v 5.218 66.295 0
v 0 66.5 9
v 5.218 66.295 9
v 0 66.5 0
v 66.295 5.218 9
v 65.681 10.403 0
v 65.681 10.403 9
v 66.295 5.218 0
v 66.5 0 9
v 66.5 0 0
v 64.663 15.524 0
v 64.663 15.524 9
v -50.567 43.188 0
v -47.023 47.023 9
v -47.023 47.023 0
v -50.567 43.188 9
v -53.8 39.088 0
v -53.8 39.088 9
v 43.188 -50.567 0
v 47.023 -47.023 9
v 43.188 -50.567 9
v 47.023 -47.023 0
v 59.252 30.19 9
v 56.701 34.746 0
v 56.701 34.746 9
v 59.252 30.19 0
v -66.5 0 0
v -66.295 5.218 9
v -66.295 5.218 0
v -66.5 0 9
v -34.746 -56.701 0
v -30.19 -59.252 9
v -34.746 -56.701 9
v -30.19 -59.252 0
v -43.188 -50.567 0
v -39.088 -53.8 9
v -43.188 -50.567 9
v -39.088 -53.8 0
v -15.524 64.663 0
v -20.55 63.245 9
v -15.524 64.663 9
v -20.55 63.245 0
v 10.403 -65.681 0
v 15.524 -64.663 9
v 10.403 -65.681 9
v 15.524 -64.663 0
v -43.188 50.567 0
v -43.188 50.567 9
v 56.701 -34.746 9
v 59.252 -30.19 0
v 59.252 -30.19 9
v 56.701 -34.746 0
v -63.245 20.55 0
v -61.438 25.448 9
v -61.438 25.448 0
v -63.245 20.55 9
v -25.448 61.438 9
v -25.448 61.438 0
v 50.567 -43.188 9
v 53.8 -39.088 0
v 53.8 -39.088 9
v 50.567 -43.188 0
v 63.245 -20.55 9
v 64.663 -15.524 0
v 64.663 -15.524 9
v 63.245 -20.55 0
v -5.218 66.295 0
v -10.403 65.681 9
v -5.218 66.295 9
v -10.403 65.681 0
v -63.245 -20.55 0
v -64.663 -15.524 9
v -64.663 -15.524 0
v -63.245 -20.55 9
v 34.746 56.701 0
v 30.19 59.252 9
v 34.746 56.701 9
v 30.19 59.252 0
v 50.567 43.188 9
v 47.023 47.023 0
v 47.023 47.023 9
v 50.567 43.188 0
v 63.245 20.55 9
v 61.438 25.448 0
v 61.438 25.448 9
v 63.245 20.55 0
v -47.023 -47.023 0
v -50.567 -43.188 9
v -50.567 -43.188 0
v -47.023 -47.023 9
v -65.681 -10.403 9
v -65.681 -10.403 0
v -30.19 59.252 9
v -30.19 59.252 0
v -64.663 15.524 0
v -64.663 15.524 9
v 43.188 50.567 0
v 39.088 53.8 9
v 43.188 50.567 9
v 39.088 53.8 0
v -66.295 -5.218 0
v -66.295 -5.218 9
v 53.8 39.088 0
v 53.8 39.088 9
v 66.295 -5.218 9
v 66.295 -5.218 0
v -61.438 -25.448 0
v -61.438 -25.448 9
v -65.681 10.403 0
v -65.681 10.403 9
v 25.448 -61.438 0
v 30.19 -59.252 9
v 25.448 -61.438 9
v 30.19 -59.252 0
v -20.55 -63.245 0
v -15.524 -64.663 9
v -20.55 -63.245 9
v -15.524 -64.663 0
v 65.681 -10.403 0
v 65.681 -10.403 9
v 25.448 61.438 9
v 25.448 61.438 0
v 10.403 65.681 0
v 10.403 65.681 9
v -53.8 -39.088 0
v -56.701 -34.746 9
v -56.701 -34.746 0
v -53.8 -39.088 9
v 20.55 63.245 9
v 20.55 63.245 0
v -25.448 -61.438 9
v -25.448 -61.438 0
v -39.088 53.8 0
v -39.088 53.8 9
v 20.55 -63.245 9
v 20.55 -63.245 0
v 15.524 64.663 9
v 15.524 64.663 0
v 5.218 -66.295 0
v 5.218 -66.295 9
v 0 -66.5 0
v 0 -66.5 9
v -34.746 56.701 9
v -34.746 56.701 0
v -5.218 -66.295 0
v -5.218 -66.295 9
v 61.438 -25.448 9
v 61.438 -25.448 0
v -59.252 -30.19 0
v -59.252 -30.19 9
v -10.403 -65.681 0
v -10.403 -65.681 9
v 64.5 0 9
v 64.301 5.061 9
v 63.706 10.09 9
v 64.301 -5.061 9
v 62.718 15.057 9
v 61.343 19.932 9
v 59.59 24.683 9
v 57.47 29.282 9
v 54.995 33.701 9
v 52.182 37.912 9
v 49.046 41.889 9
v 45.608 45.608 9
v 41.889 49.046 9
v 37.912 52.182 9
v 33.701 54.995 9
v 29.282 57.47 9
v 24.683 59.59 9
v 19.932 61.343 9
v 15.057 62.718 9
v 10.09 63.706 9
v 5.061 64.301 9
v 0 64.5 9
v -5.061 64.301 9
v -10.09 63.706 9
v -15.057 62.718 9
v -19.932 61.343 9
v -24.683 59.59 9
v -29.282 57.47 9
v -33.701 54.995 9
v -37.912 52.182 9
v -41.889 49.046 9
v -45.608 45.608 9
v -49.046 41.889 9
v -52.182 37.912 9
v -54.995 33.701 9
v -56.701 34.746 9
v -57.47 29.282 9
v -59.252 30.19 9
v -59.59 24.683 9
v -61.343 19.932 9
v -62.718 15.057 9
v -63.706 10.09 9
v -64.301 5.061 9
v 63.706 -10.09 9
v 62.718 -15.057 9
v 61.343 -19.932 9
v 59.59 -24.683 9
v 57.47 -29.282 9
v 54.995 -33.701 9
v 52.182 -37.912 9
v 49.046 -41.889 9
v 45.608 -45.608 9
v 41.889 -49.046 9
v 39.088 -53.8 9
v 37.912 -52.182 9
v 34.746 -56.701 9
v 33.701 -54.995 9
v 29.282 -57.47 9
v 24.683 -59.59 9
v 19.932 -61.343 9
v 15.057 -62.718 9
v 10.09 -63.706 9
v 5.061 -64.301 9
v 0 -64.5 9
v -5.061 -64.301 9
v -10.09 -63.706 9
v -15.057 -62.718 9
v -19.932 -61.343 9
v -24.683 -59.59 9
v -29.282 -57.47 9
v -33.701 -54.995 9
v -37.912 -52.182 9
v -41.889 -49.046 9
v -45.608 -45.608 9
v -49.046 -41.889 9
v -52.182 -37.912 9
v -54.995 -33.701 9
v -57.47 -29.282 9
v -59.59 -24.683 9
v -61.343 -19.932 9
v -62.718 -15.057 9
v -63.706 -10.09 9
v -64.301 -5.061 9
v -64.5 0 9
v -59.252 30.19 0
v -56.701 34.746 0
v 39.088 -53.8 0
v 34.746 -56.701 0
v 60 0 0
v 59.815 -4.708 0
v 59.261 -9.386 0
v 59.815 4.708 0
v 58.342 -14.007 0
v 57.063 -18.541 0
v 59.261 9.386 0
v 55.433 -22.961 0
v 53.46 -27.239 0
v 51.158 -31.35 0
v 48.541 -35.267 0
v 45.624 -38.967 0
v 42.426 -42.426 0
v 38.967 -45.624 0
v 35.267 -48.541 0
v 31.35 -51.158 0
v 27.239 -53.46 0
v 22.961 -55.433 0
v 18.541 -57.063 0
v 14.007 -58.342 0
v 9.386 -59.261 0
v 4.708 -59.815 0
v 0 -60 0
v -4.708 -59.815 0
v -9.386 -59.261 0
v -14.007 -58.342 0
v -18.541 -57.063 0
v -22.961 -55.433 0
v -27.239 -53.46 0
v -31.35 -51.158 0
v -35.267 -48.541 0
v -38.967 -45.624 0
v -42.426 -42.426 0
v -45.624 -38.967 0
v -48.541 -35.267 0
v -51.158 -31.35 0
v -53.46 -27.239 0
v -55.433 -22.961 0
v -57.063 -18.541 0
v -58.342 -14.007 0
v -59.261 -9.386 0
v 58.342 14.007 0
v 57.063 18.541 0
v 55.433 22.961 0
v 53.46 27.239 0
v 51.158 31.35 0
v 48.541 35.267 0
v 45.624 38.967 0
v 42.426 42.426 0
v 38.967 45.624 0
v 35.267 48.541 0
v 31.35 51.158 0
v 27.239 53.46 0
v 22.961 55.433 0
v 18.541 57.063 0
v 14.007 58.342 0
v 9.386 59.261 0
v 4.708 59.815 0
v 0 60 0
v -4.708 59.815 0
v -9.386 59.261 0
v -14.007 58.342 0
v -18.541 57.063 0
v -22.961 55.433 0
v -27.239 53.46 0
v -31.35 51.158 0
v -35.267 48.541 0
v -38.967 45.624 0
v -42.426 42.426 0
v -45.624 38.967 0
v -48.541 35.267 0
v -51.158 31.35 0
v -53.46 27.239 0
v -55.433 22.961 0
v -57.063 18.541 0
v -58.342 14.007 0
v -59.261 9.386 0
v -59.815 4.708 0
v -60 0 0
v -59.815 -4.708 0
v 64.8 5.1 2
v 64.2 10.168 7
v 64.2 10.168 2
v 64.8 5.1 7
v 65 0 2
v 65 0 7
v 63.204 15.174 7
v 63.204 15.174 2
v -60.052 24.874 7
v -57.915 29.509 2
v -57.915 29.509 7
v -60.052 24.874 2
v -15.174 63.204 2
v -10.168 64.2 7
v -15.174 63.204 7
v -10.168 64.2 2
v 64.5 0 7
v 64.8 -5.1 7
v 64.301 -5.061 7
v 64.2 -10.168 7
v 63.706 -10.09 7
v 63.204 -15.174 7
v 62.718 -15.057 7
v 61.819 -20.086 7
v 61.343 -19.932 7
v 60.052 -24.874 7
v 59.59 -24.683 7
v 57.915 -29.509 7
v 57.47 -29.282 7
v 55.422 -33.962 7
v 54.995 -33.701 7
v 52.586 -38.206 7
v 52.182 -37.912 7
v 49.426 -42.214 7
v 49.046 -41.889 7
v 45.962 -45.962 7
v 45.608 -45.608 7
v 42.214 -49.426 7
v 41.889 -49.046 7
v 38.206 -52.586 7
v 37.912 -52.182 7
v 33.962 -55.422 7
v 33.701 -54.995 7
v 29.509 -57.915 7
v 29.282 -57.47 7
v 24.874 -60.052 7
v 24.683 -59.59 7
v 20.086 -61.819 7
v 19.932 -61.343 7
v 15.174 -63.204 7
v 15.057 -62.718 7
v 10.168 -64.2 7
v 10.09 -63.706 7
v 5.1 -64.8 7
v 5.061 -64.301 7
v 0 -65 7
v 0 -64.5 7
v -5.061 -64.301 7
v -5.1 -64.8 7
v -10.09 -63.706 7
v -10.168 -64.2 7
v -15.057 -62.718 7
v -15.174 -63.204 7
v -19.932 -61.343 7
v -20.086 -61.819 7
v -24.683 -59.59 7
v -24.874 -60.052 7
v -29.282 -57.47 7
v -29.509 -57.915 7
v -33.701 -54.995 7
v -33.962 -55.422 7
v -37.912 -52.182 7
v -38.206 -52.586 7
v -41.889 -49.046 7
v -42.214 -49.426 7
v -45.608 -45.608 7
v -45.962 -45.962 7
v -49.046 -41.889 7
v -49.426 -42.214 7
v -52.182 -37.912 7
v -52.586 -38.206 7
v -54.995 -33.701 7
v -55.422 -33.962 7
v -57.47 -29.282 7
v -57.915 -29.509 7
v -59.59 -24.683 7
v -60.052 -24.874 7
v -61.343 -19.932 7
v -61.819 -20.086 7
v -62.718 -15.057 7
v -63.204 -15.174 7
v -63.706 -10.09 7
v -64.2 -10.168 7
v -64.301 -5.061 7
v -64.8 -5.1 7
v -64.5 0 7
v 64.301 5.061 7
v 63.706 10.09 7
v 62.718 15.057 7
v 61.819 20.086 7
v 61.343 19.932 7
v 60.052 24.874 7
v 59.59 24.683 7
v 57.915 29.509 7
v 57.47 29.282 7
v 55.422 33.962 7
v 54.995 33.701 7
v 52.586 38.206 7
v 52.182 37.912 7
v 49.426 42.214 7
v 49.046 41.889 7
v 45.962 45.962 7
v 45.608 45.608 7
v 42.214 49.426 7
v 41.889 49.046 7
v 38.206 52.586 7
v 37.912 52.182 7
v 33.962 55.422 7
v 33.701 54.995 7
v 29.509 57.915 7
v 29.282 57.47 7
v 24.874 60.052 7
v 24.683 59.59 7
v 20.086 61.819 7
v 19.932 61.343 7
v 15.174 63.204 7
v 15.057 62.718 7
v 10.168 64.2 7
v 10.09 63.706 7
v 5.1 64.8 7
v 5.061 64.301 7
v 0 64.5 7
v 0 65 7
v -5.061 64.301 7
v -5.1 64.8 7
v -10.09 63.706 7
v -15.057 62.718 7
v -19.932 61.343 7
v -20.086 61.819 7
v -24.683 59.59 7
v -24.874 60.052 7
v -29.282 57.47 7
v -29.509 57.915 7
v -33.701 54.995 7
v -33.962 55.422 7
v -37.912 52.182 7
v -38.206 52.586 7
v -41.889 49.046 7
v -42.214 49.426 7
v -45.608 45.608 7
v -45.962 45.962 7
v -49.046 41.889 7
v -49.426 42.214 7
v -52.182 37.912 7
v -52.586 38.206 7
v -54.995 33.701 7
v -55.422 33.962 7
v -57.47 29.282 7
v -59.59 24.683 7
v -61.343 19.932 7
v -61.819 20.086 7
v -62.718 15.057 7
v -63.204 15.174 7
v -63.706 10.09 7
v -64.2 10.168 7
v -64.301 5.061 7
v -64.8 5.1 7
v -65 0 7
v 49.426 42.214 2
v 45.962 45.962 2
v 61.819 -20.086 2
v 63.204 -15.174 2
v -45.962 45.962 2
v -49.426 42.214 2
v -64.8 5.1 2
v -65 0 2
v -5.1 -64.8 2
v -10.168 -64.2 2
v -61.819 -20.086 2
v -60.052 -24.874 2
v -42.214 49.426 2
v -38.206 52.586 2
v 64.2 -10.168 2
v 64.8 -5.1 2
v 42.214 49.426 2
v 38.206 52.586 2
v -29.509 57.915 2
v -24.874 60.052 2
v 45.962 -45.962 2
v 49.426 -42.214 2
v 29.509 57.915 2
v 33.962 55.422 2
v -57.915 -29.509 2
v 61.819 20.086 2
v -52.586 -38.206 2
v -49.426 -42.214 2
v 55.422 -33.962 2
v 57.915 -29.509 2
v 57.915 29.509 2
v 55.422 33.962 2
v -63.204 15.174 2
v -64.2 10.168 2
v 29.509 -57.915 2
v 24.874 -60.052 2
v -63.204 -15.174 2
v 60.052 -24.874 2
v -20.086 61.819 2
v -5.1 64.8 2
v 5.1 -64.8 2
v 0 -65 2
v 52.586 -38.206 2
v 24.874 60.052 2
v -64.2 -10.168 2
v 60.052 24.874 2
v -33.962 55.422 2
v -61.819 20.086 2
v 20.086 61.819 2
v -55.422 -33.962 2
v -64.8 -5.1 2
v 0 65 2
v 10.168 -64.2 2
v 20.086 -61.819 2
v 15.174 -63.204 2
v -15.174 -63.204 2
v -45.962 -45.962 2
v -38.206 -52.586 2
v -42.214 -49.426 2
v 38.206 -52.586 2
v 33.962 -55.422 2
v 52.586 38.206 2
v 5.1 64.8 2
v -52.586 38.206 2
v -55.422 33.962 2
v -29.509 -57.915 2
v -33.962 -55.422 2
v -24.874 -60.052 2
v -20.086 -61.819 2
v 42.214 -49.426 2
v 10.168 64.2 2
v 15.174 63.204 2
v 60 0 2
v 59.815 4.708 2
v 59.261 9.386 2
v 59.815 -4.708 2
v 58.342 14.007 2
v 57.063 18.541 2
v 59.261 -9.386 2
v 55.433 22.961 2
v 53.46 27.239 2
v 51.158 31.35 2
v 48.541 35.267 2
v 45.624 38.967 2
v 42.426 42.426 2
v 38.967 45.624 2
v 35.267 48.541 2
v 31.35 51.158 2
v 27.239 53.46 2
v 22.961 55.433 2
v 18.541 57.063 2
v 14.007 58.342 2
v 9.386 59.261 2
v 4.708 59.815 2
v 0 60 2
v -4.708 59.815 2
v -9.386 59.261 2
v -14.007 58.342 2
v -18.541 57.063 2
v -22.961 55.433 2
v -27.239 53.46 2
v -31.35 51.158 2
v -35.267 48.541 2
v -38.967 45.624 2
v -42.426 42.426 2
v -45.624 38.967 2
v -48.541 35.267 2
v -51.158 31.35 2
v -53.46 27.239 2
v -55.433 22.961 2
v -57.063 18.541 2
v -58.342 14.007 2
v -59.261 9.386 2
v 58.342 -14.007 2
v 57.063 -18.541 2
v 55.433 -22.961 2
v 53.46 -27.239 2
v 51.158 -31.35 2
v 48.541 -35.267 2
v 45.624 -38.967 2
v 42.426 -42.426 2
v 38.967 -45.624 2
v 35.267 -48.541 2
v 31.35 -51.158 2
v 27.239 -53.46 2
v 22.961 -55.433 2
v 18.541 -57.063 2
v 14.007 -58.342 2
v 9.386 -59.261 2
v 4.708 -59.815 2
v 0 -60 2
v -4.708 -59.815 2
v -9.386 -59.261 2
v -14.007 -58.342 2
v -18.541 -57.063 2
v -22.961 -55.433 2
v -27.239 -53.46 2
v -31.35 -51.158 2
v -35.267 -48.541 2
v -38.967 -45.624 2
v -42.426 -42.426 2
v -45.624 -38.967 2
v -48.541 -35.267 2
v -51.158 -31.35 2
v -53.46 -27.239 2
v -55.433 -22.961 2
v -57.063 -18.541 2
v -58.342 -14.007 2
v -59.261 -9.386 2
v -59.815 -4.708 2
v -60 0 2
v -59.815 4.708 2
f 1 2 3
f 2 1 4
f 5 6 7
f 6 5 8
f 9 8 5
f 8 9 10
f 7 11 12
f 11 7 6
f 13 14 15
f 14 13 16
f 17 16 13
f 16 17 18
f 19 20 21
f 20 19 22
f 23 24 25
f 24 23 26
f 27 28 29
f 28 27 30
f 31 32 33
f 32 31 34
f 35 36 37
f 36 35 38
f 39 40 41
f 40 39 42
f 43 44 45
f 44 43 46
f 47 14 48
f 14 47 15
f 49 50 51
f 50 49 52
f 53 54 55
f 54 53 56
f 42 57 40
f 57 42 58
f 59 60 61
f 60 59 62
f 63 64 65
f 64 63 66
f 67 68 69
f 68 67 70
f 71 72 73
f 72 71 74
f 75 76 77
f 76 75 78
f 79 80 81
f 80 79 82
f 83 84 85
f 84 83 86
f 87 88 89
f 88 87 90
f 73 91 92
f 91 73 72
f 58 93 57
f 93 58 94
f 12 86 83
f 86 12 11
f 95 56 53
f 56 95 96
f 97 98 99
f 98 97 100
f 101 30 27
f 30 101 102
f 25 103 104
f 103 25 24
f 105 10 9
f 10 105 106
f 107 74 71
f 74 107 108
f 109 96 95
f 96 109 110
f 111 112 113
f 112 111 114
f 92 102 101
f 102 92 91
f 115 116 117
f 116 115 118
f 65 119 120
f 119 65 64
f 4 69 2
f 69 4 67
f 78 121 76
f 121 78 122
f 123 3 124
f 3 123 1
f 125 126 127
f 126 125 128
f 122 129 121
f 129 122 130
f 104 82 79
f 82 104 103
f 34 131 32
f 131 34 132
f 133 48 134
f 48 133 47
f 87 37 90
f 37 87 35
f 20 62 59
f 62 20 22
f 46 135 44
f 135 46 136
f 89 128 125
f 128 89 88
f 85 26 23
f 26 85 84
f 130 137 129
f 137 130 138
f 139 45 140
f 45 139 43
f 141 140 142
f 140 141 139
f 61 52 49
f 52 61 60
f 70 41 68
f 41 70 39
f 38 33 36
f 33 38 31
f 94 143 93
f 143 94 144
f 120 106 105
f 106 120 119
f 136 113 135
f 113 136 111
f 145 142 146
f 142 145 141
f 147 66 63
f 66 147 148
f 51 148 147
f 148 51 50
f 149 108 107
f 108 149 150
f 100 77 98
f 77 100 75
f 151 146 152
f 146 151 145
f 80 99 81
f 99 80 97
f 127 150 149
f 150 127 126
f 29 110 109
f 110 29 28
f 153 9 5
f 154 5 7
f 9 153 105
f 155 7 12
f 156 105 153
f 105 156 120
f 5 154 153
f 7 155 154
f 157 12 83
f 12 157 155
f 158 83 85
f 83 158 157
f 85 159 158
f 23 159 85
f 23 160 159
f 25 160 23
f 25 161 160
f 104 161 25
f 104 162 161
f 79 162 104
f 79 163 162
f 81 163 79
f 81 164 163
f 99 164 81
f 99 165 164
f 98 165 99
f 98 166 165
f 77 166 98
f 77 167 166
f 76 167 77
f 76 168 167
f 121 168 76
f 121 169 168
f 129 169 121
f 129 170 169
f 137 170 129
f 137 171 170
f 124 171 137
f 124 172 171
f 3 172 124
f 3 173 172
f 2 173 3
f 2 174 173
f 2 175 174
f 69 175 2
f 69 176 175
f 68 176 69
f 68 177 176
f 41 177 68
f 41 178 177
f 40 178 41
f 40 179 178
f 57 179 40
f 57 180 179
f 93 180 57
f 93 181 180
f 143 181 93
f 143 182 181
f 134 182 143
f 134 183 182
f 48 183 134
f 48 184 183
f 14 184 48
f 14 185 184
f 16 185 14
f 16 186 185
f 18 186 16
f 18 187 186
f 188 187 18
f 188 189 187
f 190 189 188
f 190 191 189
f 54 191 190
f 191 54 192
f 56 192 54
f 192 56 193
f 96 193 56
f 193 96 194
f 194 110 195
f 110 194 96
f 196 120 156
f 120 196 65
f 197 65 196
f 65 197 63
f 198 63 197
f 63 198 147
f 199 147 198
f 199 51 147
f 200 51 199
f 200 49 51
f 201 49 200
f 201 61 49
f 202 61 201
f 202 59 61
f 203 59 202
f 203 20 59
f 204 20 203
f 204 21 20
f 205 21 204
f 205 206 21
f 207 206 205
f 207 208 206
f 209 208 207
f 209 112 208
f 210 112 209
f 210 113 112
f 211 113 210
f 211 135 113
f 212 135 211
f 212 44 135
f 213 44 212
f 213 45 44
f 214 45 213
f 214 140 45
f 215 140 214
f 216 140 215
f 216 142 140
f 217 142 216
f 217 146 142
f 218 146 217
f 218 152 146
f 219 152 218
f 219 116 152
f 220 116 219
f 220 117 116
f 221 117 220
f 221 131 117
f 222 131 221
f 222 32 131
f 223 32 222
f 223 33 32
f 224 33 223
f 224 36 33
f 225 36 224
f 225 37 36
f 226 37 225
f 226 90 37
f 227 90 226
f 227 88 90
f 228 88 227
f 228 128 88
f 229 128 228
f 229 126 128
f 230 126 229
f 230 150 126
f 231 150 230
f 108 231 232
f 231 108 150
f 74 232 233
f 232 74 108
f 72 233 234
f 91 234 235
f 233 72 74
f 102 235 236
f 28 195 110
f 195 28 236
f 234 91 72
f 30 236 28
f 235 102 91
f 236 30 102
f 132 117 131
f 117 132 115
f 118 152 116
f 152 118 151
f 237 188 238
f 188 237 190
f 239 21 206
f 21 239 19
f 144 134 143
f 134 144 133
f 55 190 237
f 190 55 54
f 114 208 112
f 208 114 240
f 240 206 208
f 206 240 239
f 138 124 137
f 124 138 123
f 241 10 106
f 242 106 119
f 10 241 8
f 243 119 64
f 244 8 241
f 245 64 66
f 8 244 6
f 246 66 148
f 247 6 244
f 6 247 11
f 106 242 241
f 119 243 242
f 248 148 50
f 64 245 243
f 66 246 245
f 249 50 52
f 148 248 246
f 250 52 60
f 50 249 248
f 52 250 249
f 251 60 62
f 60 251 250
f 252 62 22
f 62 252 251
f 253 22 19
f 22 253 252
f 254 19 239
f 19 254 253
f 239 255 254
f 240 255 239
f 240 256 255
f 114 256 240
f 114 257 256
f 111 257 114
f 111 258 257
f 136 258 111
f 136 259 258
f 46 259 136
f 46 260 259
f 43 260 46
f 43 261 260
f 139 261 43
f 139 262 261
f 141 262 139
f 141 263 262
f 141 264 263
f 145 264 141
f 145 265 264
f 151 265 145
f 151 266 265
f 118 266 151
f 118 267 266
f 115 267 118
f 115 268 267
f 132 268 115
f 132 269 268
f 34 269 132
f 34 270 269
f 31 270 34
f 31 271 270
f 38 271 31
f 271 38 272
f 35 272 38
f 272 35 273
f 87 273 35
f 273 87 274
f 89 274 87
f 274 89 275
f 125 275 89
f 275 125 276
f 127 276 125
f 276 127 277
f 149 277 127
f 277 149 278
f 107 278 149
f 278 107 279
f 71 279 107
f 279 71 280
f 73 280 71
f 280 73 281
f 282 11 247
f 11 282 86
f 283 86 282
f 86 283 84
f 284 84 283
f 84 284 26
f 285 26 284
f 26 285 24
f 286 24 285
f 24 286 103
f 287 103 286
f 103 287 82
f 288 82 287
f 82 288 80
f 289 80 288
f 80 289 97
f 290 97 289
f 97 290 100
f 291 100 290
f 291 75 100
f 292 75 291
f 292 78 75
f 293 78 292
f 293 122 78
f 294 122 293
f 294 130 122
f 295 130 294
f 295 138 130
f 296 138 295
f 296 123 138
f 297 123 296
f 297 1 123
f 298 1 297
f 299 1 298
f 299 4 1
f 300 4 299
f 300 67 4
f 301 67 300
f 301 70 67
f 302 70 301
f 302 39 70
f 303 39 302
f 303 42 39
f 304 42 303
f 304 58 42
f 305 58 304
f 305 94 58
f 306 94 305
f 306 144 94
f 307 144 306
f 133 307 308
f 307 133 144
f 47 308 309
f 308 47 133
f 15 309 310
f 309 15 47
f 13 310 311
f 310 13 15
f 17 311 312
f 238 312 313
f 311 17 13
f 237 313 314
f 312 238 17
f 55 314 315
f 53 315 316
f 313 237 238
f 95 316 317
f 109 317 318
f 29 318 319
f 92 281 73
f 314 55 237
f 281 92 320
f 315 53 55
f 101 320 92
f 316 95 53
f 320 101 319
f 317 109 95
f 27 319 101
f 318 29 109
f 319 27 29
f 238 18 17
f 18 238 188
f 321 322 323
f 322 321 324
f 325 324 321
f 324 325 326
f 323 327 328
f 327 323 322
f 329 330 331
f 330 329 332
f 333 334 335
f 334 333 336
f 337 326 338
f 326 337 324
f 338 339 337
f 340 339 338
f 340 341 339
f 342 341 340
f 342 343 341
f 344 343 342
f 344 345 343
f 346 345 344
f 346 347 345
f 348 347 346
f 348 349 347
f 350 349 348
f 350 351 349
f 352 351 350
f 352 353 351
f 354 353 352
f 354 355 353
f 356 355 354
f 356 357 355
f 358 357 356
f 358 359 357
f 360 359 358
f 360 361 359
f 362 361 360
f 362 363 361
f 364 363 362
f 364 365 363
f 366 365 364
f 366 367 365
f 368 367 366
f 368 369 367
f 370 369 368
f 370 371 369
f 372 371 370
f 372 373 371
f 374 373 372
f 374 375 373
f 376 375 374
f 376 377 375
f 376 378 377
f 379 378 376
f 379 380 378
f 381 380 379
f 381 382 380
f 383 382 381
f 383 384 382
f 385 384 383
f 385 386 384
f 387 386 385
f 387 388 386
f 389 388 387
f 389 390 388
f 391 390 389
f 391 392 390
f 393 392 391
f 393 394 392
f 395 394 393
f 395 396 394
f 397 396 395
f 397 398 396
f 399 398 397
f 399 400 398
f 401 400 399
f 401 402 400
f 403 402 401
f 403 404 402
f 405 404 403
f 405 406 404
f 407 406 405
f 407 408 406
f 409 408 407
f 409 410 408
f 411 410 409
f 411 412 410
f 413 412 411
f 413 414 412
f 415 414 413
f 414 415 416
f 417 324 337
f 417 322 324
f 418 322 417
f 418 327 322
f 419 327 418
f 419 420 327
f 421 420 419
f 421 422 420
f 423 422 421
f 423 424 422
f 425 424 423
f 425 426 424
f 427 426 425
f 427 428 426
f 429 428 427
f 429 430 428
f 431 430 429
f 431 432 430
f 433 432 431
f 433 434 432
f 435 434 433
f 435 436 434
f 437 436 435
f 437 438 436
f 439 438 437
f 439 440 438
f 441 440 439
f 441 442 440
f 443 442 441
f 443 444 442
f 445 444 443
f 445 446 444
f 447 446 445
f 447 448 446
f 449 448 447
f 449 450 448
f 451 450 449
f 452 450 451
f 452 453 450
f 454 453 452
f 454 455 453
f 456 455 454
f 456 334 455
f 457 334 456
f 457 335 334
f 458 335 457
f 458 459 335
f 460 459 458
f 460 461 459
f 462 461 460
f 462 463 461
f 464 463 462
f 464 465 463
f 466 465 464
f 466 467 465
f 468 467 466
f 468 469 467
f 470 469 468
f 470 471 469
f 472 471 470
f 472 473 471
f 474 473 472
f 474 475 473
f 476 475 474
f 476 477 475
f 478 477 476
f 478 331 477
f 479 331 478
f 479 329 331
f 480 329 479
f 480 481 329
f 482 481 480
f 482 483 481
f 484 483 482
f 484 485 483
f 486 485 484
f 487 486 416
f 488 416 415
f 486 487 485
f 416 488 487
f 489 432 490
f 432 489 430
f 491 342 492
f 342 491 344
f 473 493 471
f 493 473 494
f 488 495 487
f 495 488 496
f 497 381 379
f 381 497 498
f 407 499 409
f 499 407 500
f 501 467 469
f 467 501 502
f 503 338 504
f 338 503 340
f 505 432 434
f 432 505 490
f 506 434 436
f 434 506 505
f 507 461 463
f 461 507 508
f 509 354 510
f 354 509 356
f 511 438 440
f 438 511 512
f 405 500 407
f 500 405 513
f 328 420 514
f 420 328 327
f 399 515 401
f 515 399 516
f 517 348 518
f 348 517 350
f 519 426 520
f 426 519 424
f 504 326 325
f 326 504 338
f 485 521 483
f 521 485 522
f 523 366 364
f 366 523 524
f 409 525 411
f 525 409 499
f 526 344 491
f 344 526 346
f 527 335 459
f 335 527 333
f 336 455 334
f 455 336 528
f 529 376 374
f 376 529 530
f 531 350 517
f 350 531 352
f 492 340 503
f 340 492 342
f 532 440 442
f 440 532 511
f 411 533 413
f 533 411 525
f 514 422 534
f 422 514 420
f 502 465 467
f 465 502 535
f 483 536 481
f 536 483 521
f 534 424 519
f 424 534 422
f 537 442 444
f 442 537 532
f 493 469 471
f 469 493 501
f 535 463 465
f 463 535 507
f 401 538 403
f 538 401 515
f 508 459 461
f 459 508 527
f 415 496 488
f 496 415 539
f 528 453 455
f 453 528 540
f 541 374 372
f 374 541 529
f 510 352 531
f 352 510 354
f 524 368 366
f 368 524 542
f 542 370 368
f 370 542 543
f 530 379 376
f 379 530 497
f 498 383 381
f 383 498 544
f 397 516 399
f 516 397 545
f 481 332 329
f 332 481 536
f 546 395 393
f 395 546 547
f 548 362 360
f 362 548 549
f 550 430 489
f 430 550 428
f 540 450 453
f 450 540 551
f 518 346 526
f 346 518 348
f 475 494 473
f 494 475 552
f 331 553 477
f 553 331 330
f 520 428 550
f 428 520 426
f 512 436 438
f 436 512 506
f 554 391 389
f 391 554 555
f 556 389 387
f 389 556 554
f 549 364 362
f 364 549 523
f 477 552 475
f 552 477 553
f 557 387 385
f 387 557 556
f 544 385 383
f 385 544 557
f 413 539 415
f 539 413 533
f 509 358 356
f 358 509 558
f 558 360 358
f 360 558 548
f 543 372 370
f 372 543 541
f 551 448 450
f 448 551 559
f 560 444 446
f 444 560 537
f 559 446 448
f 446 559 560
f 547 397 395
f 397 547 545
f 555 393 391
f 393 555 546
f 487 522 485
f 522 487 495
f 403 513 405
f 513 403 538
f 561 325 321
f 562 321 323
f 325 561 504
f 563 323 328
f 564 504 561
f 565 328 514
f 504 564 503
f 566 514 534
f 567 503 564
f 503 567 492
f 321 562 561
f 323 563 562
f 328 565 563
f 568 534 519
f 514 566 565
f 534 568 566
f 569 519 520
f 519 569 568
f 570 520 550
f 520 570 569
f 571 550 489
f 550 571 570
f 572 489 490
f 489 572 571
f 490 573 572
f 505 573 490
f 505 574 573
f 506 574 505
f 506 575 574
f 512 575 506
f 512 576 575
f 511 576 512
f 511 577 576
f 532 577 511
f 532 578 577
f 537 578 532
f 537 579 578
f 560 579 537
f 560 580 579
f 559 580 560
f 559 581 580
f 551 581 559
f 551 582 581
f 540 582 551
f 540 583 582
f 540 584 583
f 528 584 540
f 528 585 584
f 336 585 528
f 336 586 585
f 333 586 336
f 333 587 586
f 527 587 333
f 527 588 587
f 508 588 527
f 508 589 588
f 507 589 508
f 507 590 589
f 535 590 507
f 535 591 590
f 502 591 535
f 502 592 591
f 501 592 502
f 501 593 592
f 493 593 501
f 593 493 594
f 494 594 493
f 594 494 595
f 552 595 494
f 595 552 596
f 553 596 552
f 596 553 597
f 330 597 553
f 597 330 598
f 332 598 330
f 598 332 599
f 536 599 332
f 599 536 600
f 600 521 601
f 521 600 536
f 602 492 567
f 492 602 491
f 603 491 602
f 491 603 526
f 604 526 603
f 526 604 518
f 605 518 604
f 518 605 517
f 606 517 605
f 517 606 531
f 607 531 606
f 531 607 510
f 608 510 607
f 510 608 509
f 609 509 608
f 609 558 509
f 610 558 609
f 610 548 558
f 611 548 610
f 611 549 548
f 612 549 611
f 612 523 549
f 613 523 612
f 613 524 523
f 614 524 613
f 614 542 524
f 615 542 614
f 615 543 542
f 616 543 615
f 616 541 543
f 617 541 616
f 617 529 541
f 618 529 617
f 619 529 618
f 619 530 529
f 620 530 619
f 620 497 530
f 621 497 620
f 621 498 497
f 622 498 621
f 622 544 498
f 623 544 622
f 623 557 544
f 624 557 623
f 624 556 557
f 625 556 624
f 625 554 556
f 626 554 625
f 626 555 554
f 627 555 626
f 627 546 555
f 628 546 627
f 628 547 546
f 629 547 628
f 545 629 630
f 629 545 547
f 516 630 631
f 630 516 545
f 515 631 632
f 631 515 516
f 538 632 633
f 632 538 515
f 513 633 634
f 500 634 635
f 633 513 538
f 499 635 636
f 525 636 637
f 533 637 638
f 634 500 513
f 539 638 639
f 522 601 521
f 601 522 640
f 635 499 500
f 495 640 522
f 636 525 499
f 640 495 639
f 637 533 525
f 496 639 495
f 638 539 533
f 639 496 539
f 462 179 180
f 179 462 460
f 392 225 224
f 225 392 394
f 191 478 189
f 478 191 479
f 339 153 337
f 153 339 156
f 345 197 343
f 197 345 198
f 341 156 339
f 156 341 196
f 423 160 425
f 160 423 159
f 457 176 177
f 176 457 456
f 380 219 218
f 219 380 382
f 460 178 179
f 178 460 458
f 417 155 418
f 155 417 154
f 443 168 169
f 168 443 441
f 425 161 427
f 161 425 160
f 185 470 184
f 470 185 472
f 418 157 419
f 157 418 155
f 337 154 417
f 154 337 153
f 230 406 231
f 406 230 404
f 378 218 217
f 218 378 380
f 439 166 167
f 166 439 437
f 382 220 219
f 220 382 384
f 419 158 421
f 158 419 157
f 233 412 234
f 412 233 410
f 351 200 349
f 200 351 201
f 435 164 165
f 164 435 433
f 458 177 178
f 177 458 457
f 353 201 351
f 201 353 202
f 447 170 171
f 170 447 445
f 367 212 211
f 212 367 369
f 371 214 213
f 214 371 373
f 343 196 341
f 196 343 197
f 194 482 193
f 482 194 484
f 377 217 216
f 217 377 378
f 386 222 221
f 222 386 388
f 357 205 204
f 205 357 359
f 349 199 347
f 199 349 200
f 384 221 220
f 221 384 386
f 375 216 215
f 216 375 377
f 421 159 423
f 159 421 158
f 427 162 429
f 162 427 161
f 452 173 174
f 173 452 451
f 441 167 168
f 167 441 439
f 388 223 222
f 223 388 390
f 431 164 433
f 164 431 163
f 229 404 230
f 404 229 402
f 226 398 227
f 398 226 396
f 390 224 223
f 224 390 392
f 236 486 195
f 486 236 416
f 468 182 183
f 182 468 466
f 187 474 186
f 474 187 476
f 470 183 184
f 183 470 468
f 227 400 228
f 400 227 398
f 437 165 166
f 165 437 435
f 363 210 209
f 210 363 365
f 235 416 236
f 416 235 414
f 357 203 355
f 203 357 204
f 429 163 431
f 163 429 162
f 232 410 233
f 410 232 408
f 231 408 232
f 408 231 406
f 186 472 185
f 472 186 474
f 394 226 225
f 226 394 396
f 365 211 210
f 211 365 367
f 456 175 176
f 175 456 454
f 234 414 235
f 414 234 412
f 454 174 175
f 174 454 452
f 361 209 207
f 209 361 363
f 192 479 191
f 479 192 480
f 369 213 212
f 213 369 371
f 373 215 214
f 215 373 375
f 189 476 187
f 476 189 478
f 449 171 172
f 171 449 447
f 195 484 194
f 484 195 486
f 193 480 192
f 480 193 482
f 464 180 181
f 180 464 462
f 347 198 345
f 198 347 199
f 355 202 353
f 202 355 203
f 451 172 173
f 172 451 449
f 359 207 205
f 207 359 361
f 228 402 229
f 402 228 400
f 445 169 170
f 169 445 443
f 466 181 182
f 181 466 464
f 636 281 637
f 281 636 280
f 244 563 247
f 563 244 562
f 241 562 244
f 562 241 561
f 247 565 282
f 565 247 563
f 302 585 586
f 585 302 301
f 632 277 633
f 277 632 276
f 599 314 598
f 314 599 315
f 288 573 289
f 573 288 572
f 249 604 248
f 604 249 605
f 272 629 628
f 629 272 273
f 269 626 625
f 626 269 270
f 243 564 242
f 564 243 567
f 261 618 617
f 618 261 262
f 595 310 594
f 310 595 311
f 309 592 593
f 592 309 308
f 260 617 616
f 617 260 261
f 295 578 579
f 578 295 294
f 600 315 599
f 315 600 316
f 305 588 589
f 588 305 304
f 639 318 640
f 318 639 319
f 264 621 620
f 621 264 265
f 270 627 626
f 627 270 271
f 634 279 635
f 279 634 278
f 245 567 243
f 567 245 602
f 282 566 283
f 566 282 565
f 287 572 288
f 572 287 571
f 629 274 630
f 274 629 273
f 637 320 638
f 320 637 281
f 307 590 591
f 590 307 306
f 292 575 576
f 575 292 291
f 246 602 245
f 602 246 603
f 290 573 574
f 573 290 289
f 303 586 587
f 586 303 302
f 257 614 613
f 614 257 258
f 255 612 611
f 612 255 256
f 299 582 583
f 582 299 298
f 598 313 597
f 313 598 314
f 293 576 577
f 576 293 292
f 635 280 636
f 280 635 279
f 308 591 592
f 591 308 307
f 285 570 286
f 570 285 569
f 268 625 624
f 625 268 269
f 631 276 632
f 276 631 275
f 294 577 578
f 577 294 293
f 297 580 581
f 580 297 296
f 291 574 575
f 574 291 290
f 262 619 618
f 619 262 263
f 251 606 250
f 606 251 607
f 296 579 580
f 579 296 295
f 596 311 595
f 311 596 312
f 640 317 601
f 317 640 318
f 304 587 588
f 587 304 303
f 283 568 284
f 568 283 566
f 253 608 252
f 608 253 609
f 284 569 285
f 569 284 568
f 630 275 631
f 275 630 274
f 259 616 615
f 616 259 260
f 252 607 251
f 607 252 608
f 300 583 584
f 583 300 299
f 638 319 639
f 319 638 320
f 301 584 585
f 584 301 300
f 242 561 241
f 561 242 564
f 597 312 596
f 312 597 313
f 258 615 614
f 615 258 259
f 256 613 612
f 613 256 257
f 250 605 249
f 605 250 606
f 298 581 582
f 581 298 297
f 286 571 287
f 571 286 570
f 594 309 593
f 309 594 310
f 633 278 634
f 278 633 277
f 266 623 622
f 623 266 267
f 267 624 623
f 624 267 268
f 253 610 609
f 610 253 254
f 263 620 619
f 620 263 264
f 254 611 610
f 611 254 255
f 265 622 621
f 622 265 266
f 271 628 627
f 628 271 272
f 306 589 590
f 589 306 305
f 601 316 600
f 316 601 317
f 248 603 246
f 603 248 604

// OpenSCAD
diam=130;
clip=diam-1;
overlap=diam+3;

difference() {
    cylinder(d=overlap,h=9, $fn=80);
    translate([0,0,2])
        cylinder(d=diam,h=5, $fn=80);
    translate([0,0,2])
        cylinder(d=clip,h=7, $fn=80);
    cylinder(d=diam-10,h=4, $fn=80);
    translate([-40,-80,-2])
%    cube([180,180,14]);
}
